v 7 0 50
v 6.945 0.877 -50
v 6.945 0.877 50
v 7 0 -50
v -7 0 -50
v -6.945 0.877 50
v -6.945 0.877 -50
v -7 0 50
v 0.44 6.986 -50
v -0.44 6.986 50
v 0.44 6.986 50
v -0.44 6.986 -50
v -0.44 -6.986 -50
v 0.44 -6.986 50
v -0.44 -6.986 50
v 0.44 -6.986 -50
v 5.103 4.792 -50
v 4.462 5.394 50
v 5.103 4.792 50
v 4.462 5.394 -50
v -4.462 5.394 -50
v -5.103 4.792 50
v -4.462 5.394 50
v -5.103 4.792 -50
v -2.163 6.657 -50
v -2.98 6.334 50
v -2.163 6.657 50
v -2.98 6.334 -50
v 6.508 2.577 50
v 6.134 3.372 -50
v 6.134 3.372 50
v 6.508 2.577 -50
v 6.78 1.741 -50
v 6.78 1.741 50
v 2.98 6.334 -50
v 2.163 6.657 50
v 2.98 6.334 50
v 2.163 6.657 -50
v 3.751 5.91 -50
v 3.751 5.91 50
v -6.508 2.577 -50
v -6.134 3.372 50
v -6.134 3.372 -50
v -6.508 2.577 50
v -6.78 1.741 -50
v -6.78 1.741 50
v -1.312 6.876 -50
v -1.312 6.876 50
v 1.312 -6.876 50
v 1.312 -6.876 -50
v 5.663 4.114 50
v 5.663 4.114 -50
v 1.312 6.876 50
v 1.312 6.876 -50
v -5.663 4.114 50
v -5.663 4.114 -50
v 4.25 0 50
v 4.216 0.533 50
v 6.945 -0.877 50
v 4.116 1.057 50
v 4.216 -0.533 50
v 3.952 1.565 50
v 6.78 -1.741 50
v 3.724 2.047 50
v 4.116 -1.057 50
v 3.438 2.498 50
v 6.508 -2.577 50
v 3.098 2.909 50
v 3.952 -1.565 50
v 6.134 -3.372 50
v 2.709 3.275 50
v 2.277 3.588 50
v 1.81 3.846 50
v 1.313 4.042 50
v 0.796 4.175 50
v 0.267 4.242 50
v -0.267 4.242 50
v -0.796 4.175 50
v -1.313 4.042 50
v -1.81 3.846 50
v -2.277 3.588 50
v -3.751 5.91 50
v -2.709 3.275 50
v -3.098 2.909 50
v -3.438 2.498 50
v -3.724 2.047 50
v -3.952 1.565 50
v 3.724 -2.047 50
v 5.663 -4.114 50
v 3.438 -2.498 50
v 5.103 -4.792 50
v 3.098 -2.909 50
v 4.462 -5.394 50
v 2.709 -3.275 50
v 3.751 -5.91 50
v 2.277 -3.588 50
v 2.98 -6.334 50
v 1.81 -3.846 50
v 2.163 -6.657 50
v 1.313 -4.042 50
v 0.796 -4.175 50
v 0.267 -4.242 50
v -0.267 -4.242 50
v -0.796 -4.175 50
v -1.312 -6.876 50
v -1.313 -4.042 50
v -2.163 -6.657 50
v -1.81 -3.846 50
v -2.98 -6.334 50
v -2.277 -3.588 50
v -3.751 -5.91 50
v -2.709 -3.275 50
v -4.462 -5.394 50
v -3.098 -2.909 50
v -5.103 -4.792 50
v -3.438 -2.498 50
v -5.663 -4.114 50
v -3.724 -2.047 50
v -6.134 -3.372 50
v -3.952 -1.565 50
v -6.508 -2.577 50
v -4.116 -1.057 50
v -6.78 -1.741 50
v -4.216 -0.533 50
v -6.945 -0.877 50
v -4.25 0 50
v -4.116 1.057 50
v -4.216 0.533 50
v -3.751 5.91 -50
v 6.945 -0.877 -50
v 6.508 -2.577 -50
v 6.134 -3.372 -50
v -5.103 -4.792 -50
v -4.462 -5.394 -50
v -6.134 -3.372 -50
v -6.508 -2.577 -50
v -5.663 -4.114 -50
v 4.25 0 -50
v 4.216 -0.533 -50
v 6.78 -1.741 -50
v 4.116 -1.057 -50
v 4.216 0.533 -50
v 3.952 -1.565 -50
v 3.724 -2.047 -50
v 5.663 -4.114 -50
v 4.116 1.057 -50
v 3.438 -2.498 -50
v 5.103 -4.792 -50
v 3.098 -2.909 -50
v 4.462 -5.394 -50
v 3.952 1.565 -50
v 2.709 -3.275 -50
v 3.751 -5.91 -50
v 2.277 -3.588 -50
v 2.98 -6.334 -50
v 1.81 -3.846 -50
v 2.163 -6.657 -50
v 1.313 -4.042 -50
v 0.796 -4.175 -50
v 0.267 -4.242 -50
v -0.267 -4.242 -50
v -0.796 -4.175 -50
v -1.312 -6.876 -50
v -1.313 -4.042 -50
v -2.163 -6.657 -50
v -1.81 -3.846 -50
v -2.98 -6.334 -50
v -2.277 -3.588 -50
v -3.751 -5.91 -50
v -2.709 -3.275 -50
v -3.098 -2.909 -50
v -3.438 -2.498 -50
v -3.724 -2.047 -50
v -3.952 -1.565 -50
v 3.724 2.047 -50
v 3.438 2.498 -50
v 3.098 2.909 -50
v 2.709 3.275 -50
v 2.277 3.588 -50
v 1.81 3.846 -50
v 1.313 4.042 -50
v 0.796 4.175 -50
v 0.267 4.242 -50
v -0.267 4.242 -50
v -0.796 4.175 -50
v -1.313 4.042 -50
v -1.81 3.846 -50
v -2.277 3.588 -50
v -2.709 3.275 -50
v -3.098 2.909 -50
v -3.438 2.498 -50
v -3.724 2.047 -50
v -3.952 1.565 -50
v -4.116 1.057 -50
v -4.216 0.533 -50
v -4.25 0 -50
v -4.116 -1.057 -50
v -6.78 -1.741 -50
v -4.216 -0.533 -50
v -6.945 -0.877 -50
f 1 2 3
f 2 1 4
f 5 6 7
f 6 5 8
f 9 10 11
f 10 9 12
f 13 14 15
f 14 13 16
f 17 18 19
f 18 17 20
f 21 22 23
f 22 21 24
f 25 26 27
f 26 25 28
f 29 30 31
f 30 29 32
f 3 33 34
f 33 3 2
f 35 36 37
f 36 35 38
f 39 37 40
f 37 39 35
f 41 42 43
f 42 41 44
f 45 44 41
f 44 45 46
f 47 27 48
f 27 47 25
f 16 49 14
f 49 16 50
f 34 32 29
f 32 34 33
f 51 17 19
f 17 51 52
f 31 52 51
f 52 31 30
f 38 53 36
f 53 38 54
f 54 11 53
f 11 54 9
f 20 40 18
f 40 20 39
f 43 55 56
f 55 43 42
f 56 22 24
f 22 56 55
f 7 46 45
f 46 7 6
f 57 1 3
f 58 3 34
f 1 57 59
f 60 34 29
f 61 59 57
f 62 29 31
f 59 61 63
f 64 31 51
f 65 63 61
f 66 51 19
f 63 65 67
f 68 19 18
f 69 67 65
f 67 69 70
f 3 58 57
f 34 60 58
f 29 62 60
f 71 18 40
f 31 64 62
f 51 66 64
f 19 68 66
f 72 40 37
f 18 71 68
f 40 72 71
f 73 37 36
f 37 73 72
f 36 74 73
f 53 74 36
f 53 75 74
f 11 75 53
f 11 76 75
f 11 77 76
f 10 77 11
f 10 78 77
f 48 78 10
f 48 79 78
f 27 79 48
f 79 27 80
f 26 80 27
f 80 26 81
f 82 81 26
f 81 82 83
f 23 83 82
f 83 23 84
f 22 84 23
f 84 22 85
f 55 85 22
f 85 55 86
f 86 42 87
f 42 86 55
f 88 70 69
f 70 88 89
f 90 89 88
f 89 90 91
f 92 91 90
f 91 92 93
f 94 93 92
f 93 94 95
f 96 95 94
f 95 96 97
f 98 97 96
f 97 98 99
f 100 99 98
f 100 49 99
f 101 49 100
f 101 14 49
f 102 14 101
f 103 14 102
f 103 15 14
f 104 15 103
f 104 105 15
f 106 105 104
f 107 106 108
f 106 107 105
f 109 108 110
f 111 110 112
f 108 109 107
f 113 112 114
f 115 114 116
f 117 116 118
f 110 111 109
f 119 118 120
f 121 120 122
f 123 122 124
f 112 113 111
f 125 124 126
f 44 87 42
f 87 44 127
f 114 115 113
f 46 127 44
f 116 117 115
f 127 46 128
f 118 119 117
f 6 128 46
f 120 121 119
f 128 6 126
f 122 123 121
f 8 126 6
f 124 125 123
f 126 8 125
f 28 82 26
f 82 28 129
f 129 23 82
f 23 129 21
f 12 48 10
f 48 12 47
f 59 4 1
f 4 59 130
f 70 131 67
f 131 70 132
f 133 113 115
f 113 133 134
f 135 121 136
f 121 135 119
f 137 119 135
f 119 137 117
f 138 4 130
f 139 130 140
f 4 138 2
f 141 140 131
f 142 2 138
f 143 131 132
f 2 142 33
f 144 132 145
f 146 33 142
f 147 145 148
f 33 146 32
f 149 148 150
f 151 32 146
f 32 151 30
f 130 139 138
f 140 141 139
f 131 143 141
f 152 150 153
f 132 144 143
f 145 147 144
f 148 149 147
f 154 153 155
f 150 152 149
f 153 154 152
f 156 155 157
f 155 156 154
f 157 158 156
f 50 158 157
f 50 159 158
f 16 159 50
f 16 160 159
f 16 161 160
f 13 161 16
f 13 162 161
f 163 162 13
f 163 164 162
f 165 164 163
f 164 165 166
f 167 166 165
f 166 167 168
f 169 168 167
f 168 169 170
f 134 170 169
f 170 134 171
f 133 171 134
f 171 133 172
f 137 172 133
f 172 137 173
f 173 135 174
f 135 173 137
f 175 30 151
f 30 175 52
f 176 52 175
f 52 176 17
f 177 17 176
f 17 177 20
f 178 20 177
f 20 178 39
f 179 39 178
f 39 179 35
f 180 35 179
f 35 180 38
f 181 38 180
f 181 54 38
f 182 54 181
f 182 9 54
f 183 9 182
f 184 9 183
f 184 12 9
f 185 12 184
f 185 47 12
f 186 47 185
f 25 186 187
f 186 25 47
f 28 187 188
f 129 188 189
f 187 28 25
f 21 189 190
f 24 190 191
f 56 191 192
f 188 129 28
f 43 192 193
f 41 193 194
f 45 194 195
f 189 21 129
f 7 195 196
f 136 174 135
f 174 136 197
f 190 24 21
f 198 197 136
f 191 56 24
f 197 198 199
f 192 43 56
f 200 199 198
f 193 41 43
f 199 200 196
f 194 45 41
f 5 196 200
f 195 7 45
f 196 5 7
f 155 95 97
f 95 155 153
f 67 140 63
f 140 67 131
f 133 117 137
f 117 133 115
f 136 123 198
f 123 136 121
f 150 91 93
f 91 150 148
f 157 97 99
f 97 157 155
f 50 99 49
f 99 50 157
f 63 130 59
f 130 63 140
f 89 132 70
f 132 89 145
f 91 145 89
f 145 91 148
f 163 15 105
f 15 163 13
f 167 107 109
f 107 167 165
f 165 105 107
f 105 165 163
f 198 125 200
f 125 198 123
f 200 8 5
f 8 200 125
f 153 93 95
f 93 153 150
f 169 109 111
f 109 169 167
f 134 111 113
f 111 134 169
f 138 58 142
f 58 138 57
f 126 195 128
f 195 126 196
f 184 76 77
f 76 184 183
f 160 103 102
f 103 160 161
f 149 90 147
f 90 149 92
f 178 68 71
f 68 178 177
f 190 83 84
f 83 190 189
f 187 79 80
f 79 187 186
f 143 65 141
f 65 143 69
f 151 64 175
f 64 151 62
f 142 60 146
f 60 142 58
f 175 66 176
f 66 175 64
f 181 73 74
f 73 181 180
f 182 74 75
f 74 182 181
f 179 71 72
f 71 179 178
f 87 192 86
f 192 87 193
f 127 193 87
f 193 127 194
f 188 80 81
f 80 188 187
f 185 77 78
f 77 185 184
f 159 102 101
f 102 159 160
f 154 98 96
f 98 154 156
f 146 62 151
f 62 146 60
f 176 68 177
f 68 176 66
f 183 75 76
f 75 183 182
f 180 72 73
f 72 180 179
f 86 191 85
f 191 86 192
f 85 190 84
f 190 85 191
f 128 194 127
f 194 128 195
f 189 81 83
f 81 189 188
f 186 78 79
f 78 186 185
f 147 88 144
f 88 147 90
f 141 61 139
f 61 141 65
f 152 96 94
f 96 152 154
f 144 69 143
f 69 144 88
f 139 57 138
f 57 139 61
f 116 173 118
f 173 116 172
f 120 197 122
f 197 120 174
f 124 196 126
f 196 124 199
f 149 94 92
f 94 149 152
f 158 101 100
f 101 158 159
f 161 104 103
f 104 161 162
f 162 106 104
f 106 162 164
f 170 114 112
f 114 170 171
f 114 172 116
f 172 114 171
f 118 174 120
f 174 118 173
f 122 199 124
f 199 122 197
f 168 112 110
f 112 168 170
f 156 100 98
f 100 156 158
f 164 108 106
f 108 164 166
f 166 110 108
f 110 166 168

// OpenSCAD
$fn = 50;


difference() {
	union() {
		translate(v = [0, 0, -50.0000000000]) {
			cylinder(h = 100, r = 7.0000000000);
		}
	}
	union() {
		translate(v = [0, 0, -100.0000000000]) {
			cylinder(h = 200, r = 4.2500000000);
		}
	}
}
